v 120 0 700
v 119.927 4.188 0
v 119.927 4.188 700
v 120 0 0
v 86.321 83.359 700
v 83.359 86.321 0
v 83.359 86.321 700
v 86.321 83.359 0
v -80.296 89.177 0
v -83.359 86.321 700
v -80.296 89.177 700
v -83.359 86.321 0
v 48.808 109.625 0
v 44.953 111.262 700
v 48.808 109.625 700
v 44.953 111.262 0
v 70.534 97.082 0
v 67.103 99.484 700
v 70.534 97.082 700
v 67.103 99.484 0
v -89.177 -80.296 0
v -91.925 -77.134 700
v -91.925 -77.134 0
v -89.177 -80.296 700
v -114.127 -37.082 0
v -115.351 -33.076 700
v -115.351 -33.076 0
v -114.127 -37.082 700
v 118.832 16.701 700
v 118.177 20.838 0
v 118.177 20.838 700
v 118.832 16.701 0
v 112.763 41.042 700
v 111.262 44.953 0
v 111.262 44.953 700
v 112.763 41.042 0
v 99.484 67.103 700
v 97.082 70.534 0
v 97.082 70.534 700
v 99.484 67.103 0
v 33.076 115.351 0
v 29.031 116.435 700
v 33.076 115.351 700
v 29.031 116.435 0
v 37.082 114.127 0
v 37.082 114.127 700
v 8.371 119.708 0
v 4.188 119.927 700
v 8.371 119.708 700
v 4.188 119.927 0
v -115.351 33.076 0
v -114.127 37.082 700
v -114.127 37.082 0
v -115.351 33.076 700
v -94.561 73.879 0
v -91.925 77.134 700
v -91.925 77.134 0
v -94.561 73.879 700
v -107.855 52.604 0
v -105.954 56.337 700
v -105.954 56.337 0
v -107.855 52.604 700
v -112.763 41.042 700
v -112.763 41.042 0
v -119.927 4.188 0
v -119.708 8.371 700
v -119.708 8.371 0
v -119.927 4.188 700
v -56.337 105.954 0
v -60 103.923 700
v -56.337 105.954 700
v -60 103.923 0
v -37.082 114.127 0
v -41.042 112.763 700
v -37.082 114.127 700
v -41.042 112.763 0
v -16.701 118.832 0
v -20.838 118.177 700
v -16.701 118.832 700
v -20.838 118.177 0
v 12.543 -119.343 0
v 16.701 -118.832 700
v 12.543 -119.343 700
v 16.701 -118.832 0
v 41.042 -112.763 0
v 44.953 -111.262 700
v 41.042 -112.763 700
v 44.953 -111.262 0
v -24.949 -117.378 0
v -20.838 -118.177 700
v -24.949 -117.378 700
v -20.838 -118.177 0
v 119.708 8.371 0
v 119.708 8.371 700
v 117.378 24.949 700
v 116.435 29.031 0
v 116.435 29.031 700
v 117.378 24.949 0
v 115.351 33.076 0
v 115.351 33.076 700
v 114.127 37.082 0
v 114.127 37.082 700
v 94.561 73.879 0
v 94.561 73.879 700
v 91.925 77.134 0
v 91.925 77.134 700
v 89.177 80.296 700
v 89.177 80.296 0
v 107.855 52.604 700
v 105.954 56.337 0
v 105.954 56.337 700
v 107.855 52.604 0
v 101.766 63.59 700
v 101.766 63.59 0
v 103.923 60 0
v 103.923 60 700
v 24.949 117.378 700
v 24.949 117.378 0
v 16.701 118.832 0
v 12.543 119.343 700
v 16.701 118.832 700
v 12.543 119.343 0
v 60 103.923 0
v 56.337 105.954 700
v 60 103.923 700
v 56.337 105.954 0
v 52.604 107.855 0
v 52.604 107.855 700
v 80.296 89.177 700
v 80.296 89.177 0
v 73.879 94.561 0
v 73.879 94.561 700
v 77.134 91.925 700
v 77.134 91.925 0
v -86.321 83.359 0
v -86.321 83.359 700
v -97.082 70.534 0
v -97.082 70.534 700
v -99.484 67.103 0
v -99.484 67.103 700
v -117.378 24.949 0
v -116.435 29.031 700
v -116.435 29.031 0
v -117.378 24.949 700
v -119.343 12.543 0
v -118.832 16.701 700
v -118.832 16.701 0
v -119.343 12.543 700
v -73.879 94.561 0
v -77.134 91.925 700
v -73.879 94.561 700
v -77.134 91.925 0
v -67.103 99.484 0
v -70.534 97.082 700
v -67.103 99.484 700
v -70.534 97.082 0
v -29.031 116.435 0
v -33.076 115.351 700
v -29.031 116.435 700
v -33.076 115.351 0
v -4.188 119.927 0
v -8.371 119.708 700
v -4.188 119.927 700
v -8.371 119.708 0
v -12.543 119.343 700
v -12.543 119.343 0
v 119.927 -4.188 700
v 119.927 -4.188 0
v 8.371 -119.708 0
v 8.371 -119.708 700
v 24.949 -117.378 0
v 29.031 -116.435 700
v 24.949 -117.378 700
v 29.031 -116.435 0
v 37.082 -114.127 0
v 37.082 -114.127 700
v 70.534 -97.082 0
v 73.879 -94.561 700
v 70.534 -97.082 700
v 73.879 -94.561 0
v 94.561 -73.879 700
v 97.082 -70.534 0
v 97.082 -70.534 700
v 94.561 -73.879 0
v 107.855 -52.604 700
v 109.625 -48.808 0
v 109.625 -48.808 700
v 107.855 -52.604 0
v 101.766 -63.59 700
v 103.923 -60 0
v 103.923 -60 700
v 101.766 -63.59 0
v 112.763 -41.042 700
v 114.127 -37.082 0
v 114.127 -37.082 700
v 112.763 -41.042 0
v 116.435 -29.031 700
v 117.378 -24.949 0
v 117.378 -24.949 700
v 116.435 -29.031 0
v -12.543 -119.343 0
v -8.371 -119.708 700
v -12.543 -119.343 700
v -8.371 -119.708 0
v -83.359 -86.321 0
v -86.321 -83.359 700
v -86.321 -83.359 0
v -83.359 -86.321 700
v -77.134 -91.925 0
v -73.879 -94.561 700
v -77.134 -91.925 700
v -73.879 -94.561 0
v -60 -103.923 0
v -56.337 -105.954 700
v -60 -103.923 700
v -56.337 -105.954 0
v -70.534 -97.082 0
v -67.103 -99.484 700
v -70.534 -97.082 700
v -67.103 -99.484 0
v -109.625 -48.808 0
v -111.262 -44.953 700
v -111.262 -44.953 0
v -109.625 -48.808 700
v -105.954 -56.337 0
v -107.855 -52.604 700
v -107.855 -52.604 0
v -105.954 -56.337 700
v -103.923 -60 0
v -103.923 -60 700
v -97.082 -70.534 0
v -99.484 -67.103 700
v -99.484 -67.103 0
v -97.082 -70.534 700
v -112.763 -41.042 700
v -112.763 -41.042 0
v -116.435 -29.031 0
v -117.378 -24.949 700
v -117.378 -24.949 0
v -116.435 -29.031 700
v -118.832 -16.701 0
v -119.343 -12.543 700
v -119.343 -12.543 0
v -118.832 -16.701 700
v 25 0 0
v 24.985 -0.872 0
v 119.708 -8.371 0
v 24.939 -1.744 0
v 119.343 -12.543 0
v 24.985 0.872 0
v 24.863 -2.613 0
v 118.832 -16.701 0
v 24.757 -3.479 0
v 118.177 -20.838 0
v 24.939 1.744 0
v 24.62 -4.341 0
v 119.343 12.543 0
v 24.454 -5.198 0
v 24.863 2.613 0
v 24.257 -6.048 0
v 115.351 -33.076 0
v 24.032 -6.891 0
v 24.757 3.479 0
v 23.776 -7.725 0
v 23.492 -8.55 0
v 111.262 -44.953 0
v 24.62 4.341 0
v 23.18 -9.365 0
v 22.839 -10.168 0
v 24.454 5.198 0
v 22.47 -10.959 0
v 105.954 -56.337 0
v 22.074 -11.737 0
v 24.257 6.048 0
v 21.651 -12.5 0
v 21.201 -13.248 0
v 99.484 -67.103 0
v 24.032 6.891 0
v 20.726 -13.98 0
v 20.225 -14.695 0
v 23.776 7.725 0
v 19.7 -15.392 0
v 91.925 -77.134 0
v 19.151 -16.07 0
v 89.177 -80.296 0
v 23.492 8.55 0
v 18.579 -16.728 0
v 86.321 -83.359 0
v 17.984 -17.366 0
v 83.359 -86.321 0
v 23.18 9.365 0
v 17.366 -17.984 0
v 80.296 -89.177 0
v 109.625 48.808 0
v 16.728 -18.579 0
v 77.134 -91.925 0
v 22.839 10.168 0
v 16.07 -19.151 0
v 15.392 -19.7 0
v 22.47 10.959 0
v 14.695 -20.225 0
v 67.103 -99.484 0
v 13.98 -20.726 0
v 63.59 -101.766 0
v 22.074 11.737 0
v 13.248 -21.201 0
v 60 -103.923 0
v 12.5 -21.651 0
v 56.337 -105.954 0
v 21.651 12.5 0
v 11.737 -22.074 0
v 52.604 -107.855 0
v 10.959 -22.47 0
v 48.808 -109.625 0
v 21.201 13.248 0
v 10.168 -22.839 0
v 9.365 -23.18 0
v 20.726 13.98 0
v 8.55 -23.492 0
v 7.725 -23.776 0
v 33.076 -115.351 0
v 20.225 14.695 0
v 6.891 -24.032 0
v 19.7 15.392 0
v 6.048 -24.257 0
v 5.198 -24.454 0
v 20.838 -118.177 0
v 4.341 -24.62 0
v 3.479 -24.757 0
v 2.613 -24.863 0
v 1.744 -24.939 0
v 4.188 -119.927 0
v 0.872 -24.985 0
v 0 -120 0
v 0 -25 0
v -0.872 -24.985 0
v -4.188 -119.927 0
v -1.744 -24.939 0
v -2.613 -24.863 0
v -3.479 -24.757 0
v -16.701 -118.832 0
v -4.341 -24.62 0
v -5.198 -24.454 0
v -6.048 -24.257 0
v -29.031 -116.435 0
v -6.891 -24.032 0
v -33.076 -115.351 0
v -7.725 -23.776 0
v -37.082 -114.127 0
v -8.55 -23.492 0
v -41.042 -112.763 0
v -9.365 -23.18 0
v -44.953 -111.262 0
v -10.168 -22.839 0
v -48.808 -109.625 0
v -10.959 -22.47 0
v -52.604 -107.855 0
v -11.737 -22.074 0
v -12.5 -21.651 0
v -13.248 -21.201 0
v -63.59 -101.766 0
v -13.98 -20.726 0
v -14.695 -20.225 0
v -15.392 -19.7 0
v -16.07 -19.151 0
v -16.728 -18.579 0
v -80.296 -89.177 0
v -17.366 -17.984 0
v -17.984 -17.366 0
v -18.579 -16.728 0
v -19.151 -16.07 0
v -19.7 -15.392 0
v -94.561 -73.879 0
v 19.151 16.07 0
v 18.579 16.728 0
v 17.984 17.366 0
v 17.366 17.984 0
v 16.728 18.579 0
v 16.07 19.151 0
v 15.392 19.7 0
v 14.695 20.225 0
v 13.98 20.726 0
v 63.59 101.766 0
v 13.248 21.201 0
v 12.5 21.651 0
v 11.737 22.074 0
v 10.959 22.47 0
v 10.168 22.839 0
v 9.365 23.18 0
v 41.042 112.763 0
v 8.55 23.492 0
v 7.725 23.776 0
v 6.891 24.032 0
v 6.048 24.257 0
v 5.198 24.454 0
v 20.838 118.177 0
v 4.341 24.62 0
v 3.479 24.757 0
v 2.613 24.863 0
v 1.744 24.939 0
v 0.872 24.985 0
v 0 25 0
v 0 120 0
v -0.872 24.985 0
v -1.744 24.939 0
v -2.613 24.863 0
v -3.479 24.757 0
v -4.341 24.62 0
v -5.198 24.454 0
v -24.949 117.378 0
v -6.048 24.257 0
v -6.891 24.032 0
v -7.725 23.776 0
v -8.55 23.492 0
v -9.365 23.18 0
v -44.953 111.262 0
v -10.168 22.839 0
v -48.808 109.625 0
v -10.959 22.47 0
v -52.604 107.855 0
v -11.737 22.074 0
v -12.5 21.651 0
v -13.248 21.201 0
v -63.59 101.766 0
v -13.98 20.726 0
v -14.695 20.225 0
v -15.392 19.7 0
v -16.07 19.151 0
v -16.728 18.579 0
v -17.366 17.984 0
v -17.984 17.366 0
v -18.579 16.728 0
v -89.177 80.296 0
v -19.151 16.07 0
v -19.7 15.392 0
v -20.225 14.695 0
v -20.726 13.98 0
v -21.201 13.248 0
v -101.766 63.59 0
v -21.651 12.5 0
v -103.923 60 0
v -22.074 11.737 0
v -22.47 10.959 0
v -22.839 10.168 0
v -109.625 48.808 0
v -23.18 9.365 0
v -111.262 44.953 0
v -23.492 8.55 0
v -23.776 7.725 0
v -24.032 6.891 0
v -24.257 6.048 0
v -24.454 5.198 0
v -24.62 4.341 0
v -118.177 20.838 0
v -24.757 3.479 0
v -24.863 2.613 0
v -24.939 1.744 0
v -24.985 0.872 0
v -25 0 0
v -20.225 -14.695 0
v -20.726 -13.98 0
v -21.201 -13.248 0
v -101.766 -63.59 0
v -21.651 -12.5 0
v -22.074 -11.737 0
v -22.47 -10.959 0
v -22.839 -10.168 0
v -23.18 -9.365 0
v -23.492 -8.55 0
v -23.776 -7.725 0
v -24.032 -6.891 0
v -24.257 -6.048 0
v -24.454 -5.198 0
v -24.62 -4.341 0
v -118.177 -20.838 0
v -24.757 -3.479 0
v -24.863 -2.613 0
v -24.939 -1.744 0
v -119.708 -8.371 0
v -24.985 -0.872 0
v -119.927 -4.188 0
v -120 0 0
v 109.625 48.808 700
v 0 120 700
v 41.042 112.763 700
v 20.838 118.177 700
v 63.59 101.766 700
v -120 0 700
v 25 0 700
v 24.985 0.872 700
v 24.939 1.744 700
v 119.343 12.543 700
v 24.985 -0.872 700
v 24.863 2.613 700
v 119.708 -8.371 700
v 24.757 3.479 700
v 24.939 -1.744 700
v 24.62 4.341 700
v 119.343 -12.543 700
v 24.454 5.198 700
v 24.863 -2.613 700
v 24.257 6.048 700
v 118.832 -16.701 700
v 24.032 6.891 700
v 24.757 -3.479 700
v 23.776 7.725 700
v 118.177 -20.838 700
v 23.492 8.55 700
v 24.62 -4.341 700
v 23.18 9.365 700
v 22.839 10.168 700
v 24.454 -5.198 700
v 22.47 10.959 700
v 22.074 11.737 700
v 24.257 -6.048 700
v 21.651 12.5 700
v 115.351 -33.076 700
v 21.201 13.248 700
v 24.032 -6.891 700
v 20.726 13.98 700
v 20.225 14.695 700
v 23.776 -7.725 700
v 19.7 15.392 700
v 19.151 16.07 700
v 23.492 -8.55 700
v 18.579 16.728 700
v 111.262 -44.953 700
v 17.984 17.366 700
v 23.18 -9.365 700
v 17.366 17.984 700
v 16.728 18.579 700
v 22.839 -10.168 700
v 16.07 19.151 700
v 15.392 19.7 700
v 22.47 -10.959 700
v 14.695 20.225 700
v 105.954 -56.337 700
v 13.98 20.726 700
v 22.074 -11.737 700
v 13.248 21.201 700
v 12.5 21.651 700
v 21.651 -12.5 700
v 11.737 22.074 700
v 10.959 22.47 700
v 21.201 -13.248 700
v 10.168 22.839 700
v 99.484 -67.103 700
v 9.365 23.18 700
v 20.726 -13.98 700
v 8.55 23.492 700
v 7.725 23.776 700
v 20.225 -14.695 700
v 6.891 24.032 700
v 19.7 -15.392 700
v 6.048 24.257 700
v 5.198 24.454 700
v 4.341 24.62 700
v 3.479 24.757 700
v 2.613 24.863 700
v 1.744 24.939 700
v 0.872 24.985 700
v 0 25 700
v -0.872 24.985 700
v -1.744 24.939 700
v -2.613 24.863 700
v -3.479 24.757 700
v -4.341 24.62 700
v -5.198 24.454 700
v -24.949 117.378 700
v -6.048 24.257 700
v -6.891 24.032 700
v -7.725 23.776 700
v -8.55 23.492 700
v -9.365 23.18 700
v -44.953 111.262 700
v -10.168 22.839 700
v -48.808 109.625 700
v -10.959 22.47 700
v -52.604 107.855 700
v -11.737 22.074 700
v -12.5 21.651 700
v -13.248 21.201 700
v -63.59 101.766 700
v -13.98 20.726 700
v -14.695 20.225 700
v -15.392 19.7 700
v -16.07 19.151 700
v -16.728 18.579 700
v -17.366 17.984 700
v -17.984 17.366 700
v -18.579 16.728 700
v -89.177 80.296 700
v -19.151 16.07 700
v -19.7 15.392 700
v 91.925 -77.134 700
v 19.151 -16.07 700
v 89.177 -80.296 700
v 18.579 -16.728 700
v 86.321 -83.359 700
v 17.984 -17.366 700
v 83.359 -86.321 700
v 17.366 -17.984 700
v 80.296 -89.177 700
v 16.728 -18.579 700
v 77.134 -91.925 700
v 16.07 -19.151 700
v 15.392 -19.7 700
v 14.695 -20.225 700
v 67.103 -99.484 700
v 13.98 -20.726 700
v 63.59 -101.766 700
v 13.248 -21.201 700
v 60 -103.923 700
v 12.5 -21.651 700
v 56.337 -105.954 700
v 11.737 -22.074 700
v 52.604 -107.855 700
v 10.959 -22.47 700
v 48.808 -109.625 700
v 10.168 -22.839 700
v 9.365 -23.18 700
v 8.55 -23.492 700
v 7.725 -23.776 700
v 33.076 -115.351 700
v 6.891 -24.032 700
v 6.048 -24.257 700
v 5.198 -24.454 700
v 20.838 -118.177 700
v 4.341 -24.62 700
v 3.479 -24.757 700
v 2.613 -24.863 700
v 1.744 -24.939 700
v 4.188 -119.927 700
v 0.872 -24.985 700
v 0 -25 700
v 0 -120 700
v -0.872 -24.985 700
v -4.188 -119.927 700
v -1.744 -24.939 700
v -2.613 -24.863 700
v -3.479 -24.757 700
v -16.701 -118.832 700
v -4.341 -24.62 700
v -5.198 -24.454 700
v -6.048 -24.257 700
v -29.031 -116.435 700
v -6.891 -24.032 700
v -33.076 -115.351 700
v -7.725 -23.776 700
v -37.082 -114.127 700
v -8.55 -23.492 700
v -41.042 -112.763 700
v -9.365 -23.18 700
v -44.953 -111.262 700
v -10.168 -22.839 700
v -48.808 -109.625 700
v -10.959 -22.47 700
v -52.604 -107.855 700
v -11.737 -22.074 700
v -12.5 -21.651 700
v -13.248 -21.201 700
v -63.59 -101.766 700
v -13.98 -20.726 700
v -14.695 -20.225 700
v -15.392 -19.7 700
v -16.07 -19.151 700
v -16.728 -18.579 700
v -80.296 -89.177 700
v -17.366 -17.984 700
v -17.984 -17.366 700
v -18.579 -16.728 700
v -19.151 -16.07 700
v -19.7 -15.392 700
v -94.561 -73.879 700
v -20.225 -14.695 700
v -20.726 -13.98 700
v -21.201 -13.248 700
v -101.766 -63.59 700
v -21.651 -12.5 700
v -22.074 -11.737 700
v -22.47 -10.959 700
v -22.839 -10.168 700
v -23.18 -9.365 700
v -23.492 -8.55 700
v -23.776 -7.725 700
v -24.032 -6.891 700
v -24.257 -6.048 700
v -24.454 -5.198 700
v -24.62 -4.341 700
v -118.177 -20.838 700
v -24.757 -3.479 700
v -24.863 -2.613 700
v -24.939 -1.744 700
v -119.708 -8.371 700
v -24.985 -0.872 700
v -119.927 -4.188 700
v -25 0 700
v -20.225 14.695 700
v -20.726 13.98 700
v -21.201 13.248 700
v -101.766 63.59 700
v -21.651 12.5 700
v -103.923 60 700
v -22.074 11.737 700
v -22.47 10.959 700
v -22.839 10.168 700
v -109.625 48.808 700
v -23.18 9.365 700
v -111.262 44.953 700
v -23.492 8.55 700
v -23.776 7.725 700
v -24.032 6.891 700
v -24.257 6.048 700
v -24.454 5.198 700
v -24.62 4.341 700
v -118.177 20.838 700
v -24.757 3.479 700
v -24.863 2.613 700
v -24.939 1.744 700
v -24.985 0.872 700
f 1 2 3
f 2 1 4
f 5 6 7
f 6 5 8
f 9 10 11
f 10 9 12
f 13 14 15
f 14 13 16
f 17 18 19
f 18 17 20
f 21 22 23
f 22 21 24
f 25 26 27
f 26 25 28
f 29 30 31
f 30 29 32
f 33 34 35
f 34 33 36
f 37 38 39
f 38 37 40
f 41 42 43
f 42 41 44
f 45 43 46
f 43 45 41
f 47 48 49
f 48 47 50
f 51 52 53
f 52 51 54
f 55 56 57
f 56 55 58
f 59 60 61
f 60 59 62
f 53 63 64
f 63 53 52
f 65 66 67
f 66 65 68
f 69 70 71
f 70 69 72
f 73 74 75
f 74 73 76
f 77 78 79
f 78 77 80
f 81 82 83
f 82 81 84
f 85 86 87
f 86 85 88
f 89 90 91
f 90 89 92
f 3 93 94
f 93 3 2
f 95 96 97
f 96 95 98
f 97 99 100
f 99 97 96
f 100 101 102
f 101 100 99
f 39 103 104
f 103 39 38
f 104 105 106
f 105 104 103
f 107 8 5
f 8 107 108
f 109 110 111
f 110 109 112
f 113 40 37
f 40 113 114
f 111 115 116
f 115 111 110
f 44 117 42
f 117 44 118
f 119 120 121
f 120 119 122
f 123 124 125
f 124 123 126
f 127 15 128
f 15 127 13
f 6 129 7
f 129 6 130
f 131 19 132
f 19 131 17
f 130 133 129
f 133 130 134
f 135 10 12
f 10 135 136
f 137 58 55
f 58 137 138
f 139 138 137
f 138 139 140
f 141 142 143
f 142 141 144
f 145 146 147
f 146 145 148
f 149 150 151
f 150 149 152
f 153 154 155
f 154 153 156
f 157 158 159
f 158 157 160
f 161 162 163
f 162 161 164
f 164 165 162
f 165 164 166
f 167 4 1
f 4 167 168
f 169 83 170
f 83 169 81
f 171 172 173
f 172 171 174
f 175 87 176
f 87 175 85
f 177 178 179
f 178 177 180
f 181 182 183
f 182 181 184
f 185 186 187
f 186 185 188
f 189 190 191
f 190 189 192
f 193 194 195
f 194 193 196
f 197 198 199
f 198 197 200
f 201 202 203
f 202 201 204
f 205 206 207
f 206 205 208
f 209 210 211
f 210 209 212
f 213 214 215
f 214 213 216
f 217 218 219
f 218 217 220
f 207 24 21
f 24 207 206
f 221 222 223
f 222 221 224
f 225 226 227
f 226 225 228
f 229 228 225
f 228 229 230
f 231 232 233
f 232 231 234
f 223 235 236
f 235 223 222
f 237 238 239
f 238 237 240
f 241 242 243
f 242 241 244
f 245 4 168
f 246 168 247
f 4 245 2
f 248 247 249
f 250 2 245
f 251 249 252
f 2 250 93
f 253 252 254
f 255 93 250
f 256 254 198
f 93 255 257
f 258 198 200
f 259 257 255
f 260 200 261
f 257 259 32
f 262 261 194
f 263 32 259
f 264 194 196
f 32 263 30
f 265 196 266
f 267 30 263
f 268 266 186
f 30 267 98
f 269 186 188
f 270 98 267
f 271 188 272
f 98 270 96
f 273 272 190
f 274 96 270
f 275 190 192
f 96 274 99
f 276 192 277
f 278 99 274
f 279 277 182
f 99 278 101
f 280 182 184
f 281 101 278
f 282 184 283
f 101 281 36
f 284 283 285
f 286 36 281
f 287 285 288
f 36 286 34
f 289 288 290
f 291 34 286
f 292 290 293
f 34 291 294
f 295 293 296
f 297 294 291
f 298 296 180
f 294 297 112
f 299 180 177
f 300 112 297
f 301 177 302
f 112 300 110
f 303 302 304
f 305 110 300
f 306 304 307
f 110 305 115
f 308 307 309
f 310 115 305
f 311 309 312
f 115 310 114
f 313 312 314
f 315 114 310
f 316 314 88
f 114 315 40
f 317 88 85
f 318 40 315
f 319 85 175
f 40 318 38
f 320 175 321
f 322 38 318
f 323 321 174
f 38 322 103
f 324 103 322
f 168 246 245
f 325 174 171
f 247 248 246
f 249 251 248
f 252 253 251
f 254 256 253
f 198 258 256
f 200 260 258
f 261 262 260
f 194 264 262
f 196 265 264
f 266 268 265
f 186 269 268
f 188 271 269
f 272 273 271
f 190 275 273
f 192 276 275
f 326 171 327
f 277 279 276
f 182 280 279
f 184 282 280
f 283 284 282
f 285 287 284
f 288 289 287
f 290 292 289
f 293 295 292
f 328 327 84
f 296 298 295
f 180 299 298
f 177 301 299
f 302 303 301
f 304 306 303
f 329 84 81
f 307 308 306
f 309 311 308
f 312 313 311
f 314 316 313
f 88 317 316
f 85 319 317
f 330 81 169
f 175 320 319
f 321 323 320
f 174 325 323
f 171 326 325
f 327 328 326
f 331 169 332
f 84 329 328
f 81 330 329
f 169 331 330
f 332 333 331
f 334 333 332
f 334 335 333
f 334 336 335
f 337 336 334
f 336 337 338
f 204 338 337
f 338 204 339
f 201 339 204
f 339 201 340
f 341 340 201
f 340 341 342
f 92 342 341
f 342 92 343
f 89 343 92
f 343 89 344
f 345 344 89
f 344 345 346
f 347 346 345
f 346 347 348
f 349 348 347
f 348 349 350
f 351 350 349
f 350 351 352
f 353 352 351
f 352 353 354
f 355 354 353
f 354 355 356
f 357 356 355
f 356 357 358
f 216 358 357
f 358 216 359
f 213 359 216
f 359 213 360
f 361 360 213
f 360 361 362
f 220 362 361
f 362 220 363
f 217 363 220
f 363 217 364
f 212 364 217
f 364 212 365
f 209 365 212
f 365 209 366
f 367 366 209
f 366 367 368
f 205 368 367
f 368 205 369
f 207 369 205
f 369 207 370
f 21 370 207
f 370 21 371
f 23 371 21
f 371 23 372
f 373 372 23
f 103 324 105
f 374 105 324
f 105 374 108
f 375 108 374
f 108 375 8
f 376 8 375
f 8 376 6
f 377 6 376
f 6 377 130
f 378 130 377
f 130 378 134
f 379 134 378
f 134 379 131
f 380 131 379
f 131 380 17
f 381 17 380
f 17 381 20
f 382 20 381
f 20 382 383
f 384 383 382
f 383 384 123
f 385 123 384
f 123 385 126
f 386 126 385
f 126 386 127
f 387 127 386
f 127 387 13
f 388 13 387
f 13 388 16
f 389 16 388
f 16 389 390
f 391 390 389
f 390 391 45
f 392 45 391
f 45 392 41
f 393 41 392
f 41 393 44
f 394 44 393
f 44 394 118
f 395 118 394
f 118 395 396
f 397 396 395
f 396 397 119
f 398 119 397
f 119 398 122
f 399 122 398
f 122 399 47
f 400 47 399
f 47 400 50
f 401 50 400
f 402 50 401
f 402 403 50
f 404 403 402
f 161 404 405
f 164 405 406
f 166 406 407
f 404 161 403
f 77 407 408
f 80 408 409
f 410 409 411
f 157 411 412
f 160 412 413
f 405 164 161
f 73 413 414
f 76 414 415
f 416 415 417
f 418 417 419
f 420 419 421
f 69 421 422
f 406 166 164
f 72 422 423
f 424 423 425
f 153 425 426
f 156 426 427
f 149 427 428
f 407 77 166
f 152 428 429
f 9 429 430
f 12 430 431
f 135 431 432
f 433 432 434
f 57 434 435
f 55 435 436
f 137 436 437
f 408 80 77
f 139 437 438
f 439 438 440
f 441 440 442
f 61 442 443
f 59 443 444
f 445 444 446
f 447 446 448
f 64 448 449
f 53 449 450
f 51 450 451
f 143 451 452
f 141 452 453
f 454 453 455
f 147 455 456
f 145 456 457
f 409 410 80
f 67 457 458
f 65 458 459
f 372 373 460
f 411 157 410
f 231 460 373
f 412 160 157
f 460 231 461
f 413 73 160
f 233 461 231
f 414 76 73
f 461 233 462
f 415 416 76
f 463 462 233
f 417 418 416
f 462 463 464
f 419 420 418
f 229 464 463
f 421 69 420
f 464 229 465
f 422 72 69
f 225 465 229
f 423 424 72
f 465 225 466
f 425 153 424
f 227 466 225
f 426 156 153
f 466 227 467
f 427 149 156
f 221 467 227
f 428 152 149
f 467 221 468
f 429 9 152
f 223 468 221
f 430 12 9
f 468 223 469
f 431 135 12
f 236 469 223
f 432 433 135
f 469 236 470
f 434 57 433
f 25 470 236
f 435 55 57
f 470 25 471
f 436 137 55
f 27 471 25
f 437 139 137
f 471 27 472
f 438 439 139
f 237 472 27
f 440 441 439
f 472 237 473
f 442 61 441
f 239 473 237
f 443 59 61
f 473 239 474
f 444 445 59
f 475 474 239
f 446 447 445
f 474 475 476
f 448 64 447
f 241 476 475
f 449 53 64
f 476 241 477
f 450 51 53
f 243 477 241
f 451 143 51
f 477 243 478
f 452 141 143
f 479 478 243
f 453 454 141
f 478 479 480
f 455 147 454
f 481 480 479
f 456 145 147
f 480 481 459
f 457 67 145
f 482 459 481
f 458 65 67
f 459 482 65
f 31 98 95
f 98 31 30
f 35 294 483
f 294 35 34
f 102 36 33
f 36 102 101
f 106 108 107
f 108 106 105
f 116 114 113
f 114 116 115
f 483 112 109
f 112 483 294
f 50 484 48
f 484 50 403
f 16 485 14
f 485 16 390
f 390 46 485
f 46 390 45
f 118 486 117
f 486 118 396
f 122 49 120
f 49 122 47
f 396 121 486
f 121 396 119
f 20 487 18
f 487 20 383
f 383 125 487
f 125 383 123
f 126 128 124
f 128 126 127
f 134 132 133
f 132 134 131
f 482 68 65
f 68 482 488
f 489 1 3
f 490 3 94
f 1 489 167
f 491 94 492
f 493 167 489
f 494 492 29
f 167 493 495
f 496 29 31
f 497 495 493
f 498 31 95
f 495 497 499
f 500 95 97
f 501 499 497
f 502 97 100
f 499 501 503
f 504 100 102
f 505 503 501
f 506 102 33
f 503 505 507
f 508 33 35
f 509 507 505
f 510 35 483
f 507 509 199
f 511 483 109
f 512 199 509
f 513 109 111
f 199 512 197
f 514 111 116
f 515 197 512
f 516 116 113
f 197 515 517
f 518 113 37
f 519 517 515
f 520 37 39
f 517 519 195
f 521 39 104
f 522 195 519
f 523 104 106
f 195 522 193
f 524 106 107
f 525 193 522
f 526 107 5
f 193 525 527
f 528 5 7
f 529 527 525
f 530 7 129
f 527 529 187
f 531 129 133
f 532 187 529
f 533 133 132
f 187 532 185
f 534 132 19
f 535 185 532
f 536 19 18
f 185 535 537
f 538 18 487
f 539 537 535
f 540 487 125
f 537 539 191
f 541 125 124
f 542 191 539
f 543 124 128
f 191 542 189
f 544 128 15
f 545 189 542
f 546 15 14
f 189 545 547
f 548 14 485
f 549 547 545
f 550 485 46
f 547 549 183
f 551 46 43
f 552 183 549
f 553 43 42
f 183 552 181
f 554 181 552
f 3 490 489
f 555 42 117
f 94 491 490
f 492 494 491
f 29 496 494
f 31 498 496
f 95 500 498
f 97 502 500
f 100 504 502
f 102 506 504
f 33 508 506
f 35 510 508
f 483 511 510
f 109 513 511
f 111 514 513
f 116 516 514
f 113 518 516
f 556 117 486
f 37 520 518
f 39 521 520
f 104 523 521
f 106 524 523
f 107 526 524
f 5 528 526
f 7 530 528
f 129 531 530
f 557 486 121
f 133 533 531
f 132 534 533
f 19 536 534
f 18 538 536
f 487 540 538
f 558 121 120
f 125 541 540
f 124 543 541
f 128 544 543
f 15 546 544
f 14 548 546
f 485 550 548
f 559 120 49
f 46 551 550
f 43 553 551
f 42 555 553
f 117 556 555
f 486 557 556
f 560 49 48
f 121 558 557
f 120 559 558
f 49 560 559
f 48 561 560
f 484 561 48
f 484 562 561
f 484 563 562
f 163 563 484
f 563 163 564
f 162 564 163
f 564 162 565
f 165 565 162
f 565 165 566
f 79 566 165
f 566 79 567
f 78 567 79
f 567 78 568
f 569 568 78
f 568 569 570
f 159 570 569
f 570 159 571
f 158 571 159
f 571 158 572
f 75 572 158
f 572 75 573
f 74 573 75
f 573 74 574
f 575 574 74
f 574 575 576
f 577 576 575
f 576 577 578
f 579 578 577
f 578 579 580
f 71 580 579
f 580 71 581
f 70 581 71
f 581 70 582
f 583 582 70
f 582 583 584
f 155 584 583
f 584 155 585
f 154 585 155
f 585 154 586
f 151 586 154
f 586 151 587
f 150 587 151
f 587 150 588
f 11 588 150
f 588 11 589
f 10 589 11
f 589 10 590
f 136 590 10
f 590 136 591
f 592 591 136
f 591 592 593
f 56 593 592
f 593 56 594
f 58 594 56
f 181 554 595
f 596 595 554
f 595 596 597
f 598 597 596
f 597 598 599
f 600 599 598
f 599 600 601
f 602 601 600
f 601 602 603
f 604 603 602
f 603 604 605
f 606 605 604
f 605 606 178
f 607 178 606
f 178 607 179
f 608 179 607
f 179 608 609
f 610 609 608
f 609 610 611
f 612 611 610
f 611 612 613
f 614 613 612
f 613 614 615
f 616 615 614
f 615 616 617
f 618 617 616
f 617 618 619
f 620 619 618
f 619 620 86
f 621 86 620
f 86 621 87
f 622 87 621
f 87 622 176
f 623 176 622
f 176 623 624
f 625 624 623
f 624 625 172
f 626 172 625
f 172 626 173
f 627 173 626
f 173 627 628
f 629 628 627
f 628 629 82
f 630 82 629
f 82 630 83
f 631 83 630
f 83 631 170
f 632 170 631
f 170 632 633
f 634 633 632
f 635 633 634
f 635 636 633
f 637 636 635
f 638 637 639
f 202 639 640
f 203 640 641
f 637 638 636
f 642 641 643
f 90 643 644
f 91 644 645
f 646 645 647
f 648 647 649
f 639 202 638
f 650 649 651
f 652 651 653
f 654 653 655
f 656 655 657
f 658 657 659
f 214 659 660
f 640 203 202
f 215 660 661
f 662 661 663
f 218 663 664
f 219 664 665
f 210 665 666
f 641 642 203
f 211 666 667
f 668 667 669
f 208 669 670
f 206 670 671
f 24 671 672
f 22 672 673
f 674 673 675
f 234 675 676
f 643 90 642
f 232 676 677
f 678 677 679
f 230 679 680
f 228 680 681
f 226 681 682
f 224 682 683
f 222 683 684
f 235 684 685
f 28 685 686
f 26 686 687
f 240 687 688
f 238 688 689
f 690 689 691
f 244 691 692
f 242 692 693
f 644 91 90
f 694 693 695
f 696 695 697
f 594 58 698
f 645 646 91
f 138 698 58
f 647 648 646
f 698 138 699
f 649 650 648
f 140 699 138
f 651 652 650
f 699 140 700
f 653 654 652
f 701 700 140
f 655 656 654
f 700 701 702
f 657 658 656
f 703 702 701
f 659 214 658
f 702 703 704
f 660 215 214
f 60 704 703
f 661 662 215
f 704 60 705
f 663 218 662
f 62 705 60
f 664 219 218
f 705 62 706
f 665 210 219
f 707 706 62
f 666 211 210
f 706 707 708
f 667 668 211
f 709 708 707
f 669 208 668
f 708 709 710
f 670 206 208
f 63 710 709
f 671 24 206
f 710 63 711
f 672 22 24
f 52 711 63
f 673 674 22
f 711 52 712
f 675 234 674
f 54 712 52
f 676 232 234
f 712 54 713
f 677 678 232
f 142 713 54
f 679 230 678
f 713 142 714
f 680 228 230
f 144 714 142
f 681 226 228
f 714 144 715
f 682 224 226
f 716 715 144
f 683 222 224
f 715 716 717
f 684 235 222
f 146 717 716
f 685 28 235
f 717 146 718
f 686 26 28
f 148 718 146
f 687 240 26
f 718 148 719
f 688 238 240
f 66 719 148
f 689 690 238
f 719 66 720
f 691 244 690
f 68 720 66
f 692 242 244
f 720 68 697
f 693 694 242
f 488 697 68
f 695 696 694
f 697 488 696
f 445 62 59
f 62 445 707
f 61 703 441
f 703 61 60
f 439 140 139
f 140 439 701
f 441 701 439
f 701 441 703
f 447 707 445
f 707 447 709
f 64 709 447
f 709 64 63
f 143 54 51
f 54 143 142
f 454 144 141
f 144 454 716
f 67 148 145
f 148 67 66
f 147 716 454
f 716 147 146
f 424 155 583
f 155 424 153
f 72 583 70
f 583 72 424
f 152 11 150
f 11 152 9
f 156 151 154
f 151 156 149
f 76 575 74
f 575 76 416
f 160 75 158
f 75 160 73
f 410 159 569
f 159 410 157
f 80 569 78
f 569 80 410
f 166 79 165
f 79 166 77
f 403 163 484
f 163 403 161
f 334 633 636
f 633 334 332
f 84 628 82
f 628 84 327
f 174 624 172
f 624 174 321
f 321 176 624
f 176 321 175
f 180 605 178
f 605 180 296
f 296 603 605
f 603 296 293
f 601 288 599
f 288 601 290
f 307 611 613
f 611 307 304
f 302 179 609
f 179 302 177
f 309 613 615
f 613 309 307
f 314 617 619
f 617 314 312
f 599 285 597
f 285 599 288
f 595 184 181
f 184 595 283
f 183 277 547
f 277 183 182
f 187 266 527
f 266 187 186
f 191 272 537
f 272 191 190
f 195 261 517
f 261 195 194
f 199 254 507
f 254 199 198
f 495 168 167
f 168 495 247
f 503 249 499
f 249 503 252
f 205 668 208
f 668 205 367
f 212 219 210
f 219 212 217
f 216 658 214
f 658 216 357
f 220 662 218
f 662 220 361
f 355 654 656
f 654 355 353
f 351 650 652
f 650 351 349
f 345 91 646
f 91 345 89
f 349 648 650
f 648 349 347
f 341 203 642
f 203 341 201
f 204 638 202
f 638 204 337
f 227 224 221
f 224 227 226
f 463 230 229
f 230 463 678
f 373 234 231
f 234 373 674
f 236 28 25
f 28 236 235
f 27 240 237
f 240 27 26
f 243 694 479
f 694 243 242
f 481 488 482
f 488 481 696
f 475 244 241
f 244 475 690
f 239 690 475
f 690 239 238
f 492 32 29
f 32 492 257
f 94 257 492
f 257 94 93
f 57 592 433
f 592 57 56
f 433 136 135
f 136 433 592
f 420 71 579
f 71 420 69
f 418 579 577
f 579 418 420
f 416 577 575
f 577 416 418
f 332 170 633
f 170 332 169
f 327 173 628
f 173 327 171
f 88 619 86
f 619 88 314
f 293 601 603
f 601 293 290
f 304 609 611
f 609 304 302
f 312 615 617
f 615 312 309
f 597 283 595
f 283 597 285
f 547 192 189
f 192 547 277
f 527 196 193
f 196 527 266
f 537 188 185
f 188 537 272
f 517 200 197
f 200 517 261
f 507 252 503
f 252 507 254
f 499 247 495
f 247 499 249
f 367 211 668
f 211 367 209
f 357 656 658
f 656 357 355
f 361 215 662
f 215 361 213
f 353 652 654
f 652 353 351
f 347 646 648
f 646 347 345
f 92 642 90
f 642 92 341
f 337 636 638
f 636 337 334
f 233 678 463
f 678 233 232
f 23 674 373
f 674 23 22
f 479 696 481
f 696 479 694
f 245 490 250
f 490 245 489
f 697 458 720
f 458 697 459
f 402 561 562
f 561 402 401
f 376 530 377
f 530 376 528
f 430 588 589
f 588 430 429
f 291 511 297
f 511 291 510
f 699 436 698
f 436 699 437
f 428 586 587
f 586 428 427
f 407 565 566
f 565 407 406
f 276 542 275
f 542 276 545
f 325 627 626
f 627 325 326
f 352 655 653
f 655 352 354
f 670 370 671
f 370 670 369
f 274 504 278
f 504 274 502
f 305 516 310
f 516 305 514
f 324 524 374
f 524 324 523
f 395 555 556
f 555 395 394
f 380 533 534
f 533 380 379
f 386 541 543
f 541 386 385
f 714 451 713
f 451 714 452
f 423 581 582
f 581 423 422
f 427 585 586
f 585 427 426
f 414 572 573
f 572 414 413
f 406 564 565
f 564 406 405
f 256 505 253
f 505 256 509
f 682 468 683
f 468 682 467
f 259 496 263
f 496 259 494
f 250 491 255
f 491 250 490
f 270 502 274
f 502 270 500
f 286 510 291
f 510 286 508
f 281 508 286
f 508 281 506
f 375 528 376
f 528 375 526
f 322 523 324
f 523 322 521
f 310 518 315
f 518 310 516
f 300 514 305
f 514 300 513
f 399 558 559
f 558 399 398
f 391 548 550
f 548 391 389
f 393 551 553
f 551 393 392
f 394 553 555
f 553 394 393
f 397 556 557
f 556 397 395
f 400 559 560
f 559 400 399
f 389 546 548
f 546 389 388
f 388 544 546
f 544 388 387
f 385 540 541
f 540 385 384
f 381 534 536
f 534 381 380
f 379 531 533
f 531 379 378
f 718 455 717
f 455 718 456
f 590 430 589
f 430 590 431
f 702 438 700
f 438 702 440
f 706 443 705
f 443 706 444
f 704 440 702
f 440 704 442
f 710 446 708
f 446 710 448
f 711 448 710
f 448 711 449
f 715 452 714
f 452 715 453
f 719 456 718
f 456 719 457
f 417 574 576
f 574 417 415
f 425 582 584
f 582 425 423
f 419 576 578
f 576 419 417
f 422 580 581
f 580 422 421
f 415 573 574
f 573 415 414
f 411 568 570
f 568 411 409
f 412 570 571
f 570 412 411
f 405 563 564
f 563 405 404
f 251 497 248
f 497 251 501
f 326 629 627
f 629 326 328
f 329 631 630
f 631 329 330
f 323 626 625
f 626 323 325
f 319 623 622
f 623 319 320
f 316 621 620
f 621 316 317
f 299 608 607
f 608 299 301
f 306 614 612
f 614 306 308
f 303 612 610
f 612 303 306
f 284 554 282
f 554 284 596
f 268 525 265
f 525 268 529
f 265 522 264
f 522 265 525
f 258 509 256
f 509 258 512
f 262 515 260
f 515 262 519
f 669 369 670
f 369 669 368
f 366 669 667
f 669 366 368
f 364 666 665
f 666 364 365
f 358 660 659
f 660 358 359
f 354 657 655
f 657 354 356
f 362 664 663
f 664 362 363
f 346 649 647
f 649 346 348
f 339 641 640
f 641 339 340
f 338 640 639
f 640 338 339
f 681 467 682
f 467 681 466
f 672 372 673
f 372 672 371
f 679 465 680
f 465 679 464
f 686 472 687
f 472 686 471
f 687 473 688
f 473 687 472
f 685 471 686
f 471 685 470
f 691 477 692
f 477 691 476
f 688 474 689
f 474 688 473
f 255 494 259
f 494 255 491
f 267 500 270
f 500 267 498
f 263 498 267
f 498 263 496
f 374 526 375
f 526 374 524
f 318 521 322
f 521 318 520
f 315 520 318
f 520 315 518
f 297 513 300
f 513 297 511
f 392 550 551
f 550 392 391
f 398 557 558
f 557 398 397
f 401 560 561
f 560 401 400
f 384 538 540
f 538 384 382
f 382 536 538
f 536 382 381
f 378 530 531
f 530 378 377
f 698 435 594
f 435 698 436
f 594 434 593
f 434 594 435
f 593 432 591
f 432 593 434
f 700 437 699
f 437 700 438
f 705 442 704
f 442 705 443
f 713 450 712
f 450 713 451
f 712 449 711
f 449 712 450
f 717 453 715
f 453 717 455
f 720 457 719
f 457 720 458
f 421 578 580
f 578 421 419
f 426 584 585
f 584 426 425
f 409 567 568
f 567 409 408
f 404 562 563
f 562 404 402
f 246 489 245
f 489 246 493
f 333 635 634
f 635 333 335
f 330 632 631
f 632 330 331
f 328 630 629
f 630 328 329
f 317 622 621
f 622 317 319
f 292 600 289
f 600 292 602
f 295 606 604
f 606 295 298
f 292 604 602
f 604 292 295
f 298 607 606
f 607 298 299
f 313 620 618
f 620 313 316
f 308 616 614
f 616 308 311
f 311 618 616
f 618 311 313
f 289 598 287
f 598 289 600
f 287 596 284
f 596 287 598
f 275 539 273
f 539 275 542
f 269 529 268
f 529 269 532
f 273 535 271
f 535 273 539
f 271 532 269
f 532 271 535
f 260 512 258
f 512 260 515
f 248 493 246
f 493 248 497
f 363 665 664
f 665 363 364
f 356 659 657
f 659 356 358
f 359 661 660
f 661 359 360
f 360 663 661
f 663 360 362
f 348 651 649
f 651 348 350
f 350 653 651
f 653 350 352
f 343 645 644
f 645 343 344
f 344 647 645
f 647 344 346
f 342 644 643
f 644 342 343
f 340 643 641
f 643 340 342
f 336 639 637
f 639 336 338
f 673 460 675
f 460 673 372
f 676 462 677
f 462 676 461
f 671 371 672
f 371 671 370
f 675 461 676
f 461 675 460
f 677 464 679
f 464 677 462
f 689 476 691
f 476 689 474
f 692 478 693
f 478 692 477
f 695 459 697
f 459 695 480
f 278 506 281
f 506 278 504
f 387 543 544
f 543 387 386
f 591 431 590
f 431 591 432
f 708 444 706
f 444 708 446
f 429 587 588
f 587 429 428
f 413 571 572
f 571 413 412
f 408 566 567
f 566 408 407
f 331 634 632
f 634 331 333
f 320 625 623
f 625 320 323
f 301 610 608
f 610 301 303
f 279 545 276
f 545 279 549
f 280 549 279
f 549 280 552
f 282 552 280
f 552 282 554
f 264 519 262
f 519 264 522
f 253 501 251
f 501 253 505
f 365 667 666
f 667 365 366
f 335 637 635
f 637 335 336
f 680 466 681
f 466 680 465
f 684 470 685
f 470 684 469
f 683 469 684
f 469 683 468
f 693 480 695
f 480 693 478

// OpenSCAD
$fn = 180;

module roller(diameter=240, width=700, shaft=50) {
    difference() {
        cylinder(d=diameter, h=width);
        translate([0, 0, -1])
            cylinder(d=shaft, h=width + 2);
    }
}

roller();
